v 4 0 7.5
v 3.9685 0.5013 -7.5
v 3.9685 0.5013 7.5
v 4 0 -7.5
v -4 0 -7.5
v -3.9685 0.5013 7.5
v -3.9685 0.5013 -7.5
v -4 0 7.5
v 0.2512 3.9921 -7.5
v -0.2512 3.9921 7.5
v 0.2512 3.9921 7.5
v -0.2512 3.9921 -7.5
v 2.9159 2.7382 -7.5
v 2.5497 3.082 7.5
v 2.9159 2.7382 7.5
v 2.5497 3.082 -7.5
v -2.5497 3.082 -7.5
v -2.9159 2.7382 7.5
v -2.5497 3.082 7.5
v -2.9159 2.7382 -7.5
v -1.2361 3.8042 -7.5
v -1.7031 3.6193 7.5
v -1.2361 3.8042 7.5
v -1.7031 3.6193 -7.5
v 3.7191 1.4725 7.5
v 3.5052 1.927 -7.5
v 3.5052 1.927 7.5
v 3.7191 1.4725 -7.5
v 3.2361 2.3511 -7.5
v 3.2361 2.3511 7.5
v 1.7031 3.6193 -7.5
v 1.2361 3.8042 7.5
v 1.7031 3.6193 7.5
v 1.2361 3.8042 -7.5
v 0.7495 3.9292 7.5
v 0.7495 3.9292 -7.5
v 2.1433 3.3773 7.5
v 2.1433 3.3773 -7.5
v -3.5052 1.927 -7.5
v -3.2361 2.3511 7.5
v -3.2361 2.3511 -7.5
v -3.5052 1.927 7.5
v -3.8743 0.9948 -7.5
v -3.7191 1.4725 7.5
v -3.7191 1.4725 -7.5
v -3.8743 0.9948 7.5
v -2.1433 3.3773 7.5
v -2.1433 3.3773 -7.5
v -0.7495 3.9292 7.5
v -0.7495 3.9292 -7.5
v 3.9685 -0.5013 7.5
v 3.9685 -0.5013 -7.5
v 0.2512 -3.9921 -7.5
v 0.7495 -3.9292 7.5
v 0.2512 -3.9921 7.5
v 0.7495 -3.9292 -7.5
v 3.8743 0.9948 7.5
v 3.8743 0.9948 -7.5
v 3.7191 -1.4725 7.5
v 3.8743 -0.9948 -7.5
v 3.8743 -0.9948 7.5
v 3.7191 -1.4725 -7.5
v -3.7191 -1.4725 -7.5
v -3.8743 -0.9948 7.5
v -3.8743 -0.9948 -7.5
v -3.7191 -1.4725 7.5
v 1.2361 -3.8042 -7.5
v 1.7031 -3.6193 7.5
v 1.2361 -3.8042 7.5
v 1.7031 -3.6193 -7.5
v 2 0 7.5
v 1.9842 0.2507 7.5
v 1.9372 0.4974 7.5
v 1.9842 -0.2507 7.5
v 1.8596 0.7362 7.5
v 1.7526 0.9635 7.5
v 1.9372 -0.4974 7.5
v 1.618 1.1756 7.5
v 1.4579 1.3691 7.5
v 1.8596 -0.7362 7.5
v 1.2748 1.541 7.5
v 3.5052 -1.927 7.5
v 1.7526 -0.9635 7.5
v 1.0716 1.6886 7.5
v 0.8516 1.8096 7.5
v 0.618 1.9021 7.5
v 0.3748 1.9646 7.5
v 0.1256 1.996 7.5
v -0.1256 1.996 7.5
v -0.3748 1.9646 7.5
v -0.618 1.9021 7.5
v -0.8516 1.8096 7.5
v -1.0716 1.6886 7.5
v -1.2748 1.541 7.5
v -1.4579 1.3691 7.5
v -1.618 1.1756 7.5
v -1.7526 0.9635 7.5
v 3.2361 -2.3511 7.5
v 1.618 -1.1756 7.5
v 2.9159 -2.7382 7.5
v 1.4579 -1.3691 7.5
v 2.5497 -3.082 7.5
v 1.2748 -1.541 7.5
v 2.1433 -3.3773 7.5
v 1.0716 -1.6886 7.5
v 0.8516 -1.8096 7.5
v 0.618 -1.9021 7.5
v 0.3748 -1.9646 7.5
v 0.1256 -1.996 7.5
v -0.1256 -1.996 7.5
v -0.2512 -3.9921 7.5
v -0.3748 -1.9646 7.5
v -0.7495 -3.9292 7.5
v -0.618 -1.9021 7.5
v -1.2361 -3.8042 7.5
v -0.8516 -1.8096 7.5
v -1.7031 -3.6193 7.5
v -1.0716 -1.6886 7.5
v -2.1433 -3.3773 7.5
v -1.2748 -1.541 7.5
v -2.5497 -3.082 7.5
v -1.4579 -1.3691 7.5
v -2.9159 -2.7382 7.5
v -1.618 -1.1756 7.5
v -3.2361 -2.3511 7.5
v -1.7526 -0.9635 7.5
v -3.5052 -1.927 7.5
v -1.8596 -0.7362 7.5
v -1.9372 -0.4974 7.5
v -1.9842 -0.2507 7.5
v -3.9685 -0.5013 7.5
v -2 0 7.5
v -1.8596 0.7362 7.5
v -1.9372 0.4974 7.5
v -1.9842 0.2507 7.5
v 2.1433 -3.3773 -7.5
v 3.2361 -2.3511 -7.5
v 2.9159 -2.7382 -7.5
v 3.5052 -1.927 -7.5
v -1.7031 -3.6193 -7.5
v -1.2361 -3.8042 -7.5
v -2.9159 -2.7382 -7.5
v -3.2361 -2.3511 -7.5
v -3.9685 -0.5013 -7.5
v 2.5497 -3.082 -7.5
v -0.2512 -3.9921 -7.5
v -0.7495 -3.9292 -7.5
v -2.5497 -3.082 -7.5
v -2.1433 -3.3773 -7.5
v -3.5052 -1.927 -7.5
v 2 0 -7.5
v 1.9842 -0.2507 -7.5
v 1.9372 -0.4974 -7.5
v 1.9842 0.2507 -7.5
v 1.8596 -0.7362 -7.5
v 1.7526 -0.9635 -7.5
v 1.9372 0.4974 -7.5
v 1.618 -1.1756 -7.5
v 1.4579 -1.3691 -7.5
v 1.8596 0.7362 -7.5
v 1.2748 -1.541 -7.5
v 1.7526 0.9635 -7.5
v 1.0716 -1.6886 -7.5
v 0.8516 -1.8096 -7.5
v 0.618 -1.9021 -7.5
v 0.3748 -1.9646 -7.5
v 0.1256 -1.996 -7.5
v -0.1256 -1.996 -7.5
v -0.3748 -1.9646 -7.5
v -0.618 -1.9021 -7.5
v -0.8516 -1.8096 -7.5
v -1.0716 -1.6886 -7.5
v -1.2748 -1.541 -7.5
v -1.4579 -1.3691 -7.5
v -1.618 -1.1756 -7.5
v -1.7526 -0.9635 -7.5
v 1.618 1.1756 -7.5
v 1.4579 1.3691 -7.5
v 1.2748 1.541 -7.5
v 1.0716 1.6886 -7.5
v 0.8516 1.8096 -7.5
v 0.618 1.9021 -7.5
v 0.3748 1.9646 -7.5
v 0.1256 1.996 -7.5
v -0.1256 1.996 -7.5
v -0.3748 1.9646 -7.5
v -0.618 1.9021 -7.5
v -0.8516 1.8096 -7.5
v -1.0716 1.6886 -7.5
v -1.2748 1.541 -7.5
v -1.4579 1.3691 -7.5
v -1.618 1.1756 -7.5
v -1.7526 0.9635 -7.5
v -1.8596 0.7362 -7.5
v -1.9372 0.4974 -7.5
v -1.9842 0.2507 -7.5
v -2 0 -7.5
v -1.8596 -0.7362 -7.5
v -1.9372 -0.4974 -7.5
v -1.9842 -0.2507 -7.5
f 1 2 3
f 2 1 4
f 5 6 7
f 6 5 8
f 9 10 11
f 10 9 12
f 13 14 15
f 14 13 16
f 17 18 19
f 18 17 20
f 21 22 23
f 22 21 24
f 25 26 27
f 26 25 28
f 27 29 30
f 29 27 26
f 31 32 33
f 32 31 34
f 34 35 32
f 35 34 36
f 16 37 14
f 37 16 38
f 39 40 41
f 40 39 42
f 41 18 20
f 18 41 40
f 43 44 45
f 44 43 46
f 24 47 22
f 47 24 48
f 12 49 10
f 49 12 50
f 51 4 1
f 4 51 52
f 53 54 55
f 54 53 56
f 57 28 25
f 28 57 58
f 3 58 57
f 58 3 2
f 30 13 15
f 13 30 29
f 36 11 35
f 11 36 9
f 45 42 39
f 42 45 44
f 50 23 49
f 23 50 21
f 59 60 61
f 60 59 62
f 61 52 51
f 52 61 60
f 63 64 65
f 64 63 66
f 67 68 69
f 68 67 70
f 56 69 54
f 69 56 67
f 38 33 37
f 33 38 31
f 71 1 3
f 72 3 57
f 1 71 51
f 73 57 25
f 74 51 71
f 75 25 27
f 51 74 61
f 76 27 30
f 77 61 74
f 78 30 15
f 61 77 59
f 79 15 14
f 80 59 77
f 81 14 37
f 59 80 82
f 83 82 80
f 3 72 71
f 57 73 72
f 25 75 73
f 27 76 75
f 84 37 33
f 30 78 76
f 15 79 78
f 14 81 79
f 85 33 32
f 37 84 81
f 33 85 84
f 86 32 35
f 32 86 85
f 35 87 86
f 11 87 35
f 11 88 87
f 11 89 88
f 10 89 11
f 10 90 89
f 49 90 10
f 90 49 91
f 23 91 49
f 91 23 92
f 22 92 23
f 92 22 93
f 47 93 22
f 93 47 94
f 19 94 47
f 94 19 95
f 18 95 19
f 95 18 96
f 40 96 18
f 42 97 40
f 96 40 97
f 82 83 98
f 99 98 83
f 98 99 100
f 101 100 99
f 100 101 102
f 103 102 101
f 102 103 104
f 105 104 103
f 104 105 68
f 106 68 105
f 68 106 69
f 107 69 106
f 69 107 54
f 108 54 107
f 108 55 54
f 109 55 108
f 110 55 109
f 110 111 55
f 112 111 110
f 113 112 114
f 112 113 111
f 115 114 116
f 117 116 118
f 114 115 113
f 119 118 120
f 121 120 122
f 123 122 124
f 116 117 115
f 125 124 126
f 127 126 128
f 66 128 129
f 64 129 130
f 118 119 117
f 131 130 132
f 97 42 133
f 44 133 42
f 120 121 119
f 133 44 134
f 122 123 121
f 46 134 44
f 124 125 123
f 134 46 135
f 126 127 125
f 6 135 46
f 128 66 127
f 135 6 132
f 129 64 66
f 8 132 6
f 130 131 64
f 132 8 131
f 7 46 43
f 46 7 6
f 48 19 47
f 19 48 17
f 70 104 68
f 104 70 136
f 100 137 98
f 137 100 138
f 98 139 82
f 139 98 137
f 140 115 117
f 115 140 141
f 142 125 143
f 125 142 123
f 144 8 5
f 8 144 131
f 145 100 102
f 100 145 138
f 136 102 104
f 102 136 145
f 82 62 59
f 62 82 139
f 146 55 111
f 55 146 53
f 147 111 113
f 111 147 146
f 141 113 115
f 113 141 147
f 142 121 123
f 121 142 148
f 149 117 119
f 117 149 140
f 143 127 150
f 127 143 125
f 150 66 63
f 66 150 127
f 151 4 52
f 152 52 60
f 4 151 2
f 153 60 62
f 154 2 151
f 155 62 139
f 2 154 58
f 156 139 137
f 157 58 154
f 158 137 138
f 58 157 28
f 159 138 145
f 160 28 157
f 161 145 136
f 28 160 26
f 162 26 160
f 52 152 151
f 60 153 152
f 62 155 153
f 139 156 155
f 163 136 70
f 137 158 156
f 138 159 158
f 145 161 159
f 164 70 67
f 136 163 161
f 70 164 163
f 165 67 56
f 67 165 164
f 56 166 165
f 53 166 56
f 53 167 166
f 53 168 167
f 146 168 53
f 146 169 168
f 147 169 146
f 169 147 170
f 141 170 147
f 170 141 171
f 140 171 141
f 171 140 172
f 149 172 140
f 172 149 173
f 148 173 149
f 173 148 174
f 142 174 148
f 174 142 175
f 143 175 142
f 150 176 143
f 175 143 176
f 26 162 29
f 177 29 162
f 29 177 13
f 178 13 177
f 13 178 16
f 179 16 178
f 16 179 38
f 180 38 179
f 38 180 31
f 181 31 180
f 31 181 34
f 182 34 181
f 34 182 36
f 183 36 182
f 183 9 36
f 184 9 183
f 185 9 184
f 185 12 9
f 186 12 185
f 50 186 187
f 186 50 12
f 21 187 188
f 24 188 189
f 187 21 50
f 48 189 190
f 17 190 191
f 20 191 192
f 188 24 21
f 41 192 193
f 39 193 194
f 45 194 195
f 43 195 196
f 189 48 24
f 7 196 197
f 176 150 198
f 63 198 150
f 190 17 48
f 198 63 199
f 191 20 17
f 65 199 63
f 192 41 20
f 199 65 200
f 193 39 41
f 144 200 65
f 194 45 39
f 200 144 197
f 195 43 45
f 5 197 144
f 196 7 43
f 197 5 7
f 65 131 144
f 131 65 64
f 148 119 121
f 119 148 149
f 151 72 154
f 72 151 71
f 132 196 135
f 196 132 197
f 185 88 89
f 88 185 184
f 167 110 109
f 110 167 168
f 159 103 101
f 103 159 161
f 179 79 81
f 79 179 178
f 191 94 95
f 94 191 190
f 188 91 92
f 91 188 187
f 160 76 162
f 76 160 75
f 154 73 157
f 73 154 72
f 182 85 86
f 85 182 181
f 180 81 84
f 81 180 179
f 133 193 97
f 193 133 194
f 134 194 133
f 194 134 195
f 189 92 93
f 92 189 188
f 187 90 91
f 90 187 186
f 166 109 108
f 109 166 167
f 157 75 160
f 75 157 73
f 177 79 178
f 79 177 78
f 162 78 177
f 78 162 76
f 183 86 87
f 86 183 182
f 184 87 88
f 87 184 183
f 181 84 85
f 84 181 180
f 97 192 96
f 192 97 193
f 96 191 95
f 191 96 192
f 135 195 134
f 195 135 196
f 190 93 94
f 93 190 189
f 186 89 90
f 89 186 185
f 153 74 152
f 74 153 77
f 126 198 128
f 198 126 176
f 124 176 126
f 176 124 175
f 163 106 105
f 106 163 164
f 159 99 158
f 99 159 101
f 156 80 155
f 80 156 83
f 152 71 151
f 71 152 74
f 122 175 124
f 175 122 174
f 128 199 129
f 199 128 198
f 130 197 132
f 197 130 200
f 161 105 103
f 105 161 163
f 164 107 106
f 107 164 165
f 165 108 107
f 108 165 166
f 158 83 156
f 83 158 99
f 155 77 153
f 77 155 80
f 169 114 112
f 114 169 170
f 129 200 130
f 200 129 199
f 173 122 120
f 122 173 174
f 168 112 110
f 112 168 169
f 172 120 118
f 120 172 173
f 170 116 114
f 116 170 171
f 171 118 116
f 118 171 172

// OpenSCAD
$fn = 50;


difference() {
	union() {
		translate(v = [0, 0, -7.5000000000]) {
			cylinder(h = 15, r = 4.0000000000);
		}
	}
	union() {
		translate(v = [0, 0, -100.0000000000]) {
			cylinder(h = 200, r = 2.0000000000);
		}
	}
}
